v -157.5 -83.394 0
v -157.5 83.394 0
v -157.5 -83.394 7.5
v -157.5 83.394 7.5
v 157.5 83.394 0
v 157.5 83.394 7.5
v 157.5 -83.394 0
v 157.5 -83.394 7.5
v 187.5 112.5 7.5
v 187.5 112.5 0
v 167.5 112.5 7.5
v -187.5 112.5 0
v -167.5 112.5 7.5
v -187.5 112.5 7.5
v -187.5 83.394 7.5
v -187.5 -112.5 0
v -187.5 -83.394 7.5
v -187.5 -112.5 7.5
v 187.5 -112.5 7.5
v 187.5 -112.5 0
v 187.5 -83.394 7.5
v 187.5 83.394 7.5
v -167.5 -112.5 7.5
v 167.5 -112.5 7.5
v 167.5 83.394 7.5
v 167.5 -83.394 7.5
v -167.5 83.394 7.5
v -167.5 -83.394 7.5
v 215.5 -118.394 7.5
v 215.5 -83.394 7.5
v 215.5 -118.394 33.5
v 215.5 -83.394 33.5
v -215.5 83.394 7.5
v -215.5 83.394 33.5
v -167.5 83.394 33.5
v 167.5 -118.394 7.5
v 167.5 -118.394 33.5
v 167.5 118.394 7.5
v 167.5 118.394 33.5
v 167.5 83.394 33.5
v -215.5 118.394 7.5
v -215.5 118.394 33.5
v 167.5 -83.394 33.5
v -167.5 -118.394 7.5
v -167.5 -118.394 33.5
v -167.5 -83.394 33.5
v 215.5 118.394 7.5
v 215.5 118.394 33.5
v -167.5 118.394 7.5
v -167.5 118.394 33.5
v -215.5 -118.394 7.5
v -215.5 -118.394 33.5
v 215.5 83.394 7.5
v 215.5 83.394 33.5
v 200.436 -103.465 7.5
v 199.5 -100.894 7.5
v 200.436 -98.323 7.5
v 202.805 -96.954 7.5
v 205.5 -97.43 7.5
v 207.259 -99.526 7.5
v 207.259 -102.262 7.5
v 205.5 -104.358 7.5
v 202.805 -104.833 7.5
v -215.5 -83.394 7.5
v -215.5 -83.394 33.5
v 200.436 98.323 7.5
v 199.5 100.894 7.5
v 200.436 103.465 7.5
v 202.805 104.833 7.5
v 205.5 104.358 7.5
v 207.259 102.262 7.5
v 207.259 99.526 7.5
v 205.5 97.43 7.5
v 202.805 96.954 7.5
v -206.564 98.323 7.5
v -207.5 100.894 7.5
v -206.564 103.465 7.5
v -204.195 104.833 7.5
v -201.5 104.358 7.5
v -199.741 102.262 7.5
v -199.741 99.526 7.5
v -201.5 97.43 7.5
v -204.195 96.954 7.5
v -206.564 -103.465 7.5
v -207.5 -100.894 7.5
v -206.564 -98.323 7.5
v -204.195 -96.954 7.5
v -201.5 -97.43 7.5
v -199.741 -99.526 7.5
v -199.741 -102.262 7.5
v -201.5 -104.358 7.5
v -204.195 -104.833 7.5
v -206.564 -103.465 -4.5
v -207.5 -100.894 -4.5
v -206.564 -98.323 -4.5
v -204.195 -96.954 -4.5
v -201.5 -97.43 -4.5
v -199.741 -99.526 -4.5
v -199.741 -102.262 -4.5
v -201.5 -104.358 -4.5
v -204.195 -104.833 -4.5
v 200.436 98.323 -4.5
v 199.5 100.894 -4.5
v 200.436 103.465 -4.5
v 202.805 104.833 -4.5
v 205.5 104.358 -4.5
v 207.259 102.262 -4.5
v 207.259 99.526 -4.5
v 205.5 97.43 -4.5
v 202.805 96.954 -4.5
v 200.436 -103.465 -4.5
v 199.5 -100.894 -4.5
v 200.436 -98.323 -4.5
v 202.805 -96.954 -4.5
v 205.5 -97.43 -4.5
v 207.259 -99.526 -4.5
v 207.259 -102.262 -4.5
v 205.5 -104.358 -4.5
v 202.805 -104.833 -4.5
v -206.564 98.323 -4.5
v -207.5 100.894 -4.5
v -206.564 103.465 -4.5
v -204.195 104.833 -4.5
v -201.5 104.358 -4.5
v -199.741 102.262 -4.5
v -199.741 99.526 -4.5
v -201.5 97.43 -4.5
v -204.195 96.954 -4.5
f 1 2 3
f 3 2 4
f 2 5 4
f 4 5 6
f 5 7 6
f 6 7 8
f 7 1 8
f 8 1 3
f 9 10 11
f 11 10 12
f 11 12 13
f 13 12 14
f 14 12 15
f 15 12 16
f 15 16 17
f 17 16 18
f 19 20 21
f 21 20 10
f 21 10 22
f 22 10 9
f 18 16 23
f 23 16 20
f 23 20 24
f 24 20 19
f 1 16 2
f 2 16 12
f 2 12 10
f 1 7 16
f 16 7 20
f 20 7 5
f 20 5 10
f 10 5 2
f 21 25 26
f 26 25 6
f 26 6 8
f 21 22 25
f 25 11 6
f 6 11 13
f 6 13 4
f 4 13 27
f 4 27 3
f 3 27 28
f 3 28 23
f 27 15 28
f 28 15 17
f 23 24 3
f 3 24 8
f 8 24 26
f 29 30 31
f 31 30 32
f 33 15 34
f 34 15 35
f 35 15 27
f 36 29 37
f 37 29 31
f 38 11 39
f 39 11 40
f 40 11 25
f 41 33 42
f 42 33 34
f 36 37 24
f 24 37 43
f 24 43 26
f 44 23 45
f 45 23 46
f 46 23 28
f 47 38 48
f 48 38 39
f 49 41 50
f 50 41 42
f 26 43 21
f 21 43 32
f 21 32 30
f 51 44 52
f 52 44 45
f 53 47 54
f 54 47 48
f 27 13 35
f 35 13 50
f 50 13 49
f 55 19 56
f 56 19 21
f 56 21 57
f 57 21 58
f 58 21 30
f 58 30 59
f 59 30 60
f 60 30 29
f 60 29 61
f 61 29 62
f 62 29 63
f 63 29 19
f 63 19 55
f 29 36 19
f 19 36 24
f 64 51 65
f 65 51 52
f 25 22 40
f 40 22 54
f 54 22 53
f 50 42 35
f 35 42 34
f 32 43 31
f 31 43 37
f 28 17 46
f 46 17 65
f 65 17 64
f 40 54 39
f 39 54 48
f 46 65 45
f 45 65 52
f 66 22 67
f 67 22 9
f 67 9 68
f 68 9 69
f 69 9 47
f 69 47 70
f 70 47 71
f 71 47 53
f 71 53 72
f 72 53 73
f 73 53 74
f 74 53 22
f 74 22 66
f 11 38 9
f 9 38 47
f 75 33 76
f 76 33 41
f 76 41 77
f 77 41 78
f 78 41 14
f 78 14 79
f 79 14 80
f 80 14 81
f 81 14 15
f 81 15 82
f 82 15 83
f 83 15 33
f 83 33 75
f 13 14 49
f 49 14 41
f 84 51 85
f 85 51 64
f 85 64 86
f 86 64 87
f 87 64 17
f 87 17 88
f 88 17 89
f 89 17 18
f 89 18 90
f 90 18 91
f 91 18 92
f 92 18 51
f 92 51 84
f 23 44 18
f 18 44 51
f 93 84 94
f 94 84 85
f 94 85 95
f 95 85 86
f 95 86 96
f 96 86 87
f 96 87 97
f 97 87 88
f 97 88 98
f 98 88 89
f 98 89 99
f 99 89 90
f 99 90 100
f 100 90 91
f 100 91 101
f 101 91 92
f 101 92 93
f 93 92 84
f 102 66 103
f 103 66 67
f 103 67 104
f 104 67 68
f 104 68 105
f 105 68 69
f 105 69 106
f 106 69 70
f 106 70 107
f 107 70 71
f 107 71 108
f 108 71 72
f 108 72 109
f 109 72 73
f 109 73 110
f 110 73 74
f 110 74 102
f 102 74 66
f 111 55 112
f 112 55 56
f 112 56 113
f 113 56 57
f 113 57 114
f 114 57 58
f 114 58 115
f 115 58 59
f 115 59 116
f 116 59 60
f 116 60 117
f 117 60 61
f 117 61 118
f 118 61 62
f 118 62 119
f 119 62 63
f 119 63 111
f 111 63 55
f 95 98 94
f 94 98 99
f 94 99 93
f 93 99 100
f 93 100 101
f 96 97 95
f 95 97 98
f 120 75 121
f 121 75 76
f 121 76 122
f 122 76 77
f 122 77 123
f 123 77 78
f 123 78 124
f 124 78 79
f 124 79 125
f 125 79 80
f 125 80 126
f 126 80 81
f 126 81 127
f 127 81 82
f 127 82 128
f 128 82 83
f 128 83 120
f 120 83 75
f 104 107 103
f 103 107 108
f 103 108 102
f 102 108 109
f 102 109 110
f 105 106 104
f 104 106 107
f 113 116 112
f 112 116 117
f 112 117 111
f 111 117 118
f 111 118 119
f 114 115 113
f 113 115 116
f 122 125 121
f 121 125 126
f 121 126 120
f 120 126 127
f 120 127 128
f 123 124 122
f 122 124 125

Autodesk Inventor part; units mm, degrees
ref_plane "YZ Plane" through (0, 0, 0) normal (1, 0, 0) x (0, 1, 0)
ref_plane "XZ Plane" through (0, 0, 0) normal (0, 1, 0) x (-1, 0, 0)
ref_plane "XY Plane" through (0, 0, 0) normal (0, 0, 1) x (1, 0, 0)
sketch "Sketch1" plane through (0, 0, 0) normal (0, 0, 1) x (1, 0, 0)
  line L0 (187.5, -112.5) -> (-187.5, -112.5)
  line L1 (-187.5, -112.5) -> (-187.5, 112.5)
  line L2 (-187.5, 112.5) -> (187.5, 112.5)
  line L3 (187.5, 112.5) -> (187.5, -112.5)
  line L4 (187.5, -112.5) -> (-187.5, 112.5) construction
  line L5 (-187.5, -112.5) -> (187.5, 112.5) construction
  line L6 (157.5, -83.3937) -> (-157.5, -83.3937)
  line L7 (-157.5, -83.3937) -> (-157.5, 83.3937)
  line L8 (-157.5, 83.3937) -> (157.5, 83.3937)
  line L9 (157.5, 83.3937) -> (157.5, -83.3937)
  line L10 (157.5, -83.3937) -> (-157.5, 83.3937) construction
  line L11 (-157.5, -83.3937) -> (157.5, 83.3937) construction
  point P0 (0, 0)
  dimension "d0" = 375
  dimension "d1" = 225
  dimension "d2" = 315
extrude "Extrusion1" add sketch "Sketch1" along normal blind 7.5
sketch "Sketch2" plane through (0, 0, 7.5) normal (0, 0, 1) x (1, 0, 0)
  line L0 (-157.5, 83.3937) -> (157.5, 83.3937) projected
  line L1 (-167.5, 83.3937) -> (-167.5, 118.3937)
  line L2 (-167.5, 118.3937) -> (-215.5, 118.3937)
  line L3 (-215.5, 118.3937) -> (-215.5, 83.3937)
  line L4 (-215.5, 83.3937) -> (-167.5, 83.3937)
  line L5 (167.5, 83.3937) -> (215.5, 83.3937)
  line L6 (215.5, 83.3937) -> (215.5, 118.3937)
  line L7 (215.5, 118.3937) -> (167.5, 118.3937)
  line L8 (167.5, 118.3937) -> (167.5, 83.3937)
  line L9 (157.5, -83.3937) -> (-157.5, -83.3937) projected
  line L10 (167.5, -83.3937) -> (215.5, -83.3937)
  line L11 (215.5, -83.3937) -> (215.5, -118.3937)
  line L12 (215.5, -118.3937) -> (167.5, -118.3937)
  line L13 (167.5, -118.3937) -> (167.5, -83.3937)
  line L14 (-167.5, -83.3937) -> (-215.5, -83.3937)
  line L15 (-215.5, -83.3937) -> (-215.5, -118.3937)
  line L16 (-215.5, -118.3937) -> (-167.5, -118.3937)
  line L17 (-167.5, -118.3937) -> (-167.5, -83.3937)
  point P0 (0, 0)
  dimension "d5" = 10
  dimension "d6" = 35
  dimension "d7" = 48
  dimension "d8" = 35
  dimension "d9" = 10
  dimension "d10" = 48
  dimension "d11" = 35
  dimension "d12" = 10
  dimension "d13" = 48
  dimension "d14" = 35
  dimension "d15" = 48
  dimension "d16" = 10
  dimension "d17" = 48
  dimension "d18" = 35
  dimension "d19" = 48
extrude "Extrusion2" add sketch "Sketch2" along normal blind 26
sketch "Sketch3" plane through (0, 0, 7.5) normal (0, 0, -1) x (-1, 0, 0)
  circle A0 centre (-203.5, 100.8937) radius 4
  line L0 (-187.5, -83.3937) -> (-215.5, -83.3937) projected
  line L1 (167.5, 118.3937) -> (215.5, 118.3937) projected
  line L2 (215.5, 118.3937) -> (215.5, 83.3937) projected
  circle A1 centre (-203.5, -100.8937) radius 4
  circle A2 centre (203.5, -100.8937) radius 4
  circle A3 centre (203.5, 100.8937) radius 4
  point P0 (0, 0)
  point P1 (-215.5, 118.3937)
  point P2 (215.5, -118.3937)
  dimension "d24" = 8
  dimension "d30" = 8
  dimension "d31" = 100.8937
  dimension "d32" = 203.5
  dimension "d33" = 203.5
  dimension "d34" = 100.8937
  dimension "d35" = 100.8937
  dimension "d36" = 203.5
  dimension "d37" = 100.8937
  dimension "d38" = 203.5
extrude "Extrusion3" add sketch "Sketch3" along normal blind 12
properties part number "RielesModificado"
